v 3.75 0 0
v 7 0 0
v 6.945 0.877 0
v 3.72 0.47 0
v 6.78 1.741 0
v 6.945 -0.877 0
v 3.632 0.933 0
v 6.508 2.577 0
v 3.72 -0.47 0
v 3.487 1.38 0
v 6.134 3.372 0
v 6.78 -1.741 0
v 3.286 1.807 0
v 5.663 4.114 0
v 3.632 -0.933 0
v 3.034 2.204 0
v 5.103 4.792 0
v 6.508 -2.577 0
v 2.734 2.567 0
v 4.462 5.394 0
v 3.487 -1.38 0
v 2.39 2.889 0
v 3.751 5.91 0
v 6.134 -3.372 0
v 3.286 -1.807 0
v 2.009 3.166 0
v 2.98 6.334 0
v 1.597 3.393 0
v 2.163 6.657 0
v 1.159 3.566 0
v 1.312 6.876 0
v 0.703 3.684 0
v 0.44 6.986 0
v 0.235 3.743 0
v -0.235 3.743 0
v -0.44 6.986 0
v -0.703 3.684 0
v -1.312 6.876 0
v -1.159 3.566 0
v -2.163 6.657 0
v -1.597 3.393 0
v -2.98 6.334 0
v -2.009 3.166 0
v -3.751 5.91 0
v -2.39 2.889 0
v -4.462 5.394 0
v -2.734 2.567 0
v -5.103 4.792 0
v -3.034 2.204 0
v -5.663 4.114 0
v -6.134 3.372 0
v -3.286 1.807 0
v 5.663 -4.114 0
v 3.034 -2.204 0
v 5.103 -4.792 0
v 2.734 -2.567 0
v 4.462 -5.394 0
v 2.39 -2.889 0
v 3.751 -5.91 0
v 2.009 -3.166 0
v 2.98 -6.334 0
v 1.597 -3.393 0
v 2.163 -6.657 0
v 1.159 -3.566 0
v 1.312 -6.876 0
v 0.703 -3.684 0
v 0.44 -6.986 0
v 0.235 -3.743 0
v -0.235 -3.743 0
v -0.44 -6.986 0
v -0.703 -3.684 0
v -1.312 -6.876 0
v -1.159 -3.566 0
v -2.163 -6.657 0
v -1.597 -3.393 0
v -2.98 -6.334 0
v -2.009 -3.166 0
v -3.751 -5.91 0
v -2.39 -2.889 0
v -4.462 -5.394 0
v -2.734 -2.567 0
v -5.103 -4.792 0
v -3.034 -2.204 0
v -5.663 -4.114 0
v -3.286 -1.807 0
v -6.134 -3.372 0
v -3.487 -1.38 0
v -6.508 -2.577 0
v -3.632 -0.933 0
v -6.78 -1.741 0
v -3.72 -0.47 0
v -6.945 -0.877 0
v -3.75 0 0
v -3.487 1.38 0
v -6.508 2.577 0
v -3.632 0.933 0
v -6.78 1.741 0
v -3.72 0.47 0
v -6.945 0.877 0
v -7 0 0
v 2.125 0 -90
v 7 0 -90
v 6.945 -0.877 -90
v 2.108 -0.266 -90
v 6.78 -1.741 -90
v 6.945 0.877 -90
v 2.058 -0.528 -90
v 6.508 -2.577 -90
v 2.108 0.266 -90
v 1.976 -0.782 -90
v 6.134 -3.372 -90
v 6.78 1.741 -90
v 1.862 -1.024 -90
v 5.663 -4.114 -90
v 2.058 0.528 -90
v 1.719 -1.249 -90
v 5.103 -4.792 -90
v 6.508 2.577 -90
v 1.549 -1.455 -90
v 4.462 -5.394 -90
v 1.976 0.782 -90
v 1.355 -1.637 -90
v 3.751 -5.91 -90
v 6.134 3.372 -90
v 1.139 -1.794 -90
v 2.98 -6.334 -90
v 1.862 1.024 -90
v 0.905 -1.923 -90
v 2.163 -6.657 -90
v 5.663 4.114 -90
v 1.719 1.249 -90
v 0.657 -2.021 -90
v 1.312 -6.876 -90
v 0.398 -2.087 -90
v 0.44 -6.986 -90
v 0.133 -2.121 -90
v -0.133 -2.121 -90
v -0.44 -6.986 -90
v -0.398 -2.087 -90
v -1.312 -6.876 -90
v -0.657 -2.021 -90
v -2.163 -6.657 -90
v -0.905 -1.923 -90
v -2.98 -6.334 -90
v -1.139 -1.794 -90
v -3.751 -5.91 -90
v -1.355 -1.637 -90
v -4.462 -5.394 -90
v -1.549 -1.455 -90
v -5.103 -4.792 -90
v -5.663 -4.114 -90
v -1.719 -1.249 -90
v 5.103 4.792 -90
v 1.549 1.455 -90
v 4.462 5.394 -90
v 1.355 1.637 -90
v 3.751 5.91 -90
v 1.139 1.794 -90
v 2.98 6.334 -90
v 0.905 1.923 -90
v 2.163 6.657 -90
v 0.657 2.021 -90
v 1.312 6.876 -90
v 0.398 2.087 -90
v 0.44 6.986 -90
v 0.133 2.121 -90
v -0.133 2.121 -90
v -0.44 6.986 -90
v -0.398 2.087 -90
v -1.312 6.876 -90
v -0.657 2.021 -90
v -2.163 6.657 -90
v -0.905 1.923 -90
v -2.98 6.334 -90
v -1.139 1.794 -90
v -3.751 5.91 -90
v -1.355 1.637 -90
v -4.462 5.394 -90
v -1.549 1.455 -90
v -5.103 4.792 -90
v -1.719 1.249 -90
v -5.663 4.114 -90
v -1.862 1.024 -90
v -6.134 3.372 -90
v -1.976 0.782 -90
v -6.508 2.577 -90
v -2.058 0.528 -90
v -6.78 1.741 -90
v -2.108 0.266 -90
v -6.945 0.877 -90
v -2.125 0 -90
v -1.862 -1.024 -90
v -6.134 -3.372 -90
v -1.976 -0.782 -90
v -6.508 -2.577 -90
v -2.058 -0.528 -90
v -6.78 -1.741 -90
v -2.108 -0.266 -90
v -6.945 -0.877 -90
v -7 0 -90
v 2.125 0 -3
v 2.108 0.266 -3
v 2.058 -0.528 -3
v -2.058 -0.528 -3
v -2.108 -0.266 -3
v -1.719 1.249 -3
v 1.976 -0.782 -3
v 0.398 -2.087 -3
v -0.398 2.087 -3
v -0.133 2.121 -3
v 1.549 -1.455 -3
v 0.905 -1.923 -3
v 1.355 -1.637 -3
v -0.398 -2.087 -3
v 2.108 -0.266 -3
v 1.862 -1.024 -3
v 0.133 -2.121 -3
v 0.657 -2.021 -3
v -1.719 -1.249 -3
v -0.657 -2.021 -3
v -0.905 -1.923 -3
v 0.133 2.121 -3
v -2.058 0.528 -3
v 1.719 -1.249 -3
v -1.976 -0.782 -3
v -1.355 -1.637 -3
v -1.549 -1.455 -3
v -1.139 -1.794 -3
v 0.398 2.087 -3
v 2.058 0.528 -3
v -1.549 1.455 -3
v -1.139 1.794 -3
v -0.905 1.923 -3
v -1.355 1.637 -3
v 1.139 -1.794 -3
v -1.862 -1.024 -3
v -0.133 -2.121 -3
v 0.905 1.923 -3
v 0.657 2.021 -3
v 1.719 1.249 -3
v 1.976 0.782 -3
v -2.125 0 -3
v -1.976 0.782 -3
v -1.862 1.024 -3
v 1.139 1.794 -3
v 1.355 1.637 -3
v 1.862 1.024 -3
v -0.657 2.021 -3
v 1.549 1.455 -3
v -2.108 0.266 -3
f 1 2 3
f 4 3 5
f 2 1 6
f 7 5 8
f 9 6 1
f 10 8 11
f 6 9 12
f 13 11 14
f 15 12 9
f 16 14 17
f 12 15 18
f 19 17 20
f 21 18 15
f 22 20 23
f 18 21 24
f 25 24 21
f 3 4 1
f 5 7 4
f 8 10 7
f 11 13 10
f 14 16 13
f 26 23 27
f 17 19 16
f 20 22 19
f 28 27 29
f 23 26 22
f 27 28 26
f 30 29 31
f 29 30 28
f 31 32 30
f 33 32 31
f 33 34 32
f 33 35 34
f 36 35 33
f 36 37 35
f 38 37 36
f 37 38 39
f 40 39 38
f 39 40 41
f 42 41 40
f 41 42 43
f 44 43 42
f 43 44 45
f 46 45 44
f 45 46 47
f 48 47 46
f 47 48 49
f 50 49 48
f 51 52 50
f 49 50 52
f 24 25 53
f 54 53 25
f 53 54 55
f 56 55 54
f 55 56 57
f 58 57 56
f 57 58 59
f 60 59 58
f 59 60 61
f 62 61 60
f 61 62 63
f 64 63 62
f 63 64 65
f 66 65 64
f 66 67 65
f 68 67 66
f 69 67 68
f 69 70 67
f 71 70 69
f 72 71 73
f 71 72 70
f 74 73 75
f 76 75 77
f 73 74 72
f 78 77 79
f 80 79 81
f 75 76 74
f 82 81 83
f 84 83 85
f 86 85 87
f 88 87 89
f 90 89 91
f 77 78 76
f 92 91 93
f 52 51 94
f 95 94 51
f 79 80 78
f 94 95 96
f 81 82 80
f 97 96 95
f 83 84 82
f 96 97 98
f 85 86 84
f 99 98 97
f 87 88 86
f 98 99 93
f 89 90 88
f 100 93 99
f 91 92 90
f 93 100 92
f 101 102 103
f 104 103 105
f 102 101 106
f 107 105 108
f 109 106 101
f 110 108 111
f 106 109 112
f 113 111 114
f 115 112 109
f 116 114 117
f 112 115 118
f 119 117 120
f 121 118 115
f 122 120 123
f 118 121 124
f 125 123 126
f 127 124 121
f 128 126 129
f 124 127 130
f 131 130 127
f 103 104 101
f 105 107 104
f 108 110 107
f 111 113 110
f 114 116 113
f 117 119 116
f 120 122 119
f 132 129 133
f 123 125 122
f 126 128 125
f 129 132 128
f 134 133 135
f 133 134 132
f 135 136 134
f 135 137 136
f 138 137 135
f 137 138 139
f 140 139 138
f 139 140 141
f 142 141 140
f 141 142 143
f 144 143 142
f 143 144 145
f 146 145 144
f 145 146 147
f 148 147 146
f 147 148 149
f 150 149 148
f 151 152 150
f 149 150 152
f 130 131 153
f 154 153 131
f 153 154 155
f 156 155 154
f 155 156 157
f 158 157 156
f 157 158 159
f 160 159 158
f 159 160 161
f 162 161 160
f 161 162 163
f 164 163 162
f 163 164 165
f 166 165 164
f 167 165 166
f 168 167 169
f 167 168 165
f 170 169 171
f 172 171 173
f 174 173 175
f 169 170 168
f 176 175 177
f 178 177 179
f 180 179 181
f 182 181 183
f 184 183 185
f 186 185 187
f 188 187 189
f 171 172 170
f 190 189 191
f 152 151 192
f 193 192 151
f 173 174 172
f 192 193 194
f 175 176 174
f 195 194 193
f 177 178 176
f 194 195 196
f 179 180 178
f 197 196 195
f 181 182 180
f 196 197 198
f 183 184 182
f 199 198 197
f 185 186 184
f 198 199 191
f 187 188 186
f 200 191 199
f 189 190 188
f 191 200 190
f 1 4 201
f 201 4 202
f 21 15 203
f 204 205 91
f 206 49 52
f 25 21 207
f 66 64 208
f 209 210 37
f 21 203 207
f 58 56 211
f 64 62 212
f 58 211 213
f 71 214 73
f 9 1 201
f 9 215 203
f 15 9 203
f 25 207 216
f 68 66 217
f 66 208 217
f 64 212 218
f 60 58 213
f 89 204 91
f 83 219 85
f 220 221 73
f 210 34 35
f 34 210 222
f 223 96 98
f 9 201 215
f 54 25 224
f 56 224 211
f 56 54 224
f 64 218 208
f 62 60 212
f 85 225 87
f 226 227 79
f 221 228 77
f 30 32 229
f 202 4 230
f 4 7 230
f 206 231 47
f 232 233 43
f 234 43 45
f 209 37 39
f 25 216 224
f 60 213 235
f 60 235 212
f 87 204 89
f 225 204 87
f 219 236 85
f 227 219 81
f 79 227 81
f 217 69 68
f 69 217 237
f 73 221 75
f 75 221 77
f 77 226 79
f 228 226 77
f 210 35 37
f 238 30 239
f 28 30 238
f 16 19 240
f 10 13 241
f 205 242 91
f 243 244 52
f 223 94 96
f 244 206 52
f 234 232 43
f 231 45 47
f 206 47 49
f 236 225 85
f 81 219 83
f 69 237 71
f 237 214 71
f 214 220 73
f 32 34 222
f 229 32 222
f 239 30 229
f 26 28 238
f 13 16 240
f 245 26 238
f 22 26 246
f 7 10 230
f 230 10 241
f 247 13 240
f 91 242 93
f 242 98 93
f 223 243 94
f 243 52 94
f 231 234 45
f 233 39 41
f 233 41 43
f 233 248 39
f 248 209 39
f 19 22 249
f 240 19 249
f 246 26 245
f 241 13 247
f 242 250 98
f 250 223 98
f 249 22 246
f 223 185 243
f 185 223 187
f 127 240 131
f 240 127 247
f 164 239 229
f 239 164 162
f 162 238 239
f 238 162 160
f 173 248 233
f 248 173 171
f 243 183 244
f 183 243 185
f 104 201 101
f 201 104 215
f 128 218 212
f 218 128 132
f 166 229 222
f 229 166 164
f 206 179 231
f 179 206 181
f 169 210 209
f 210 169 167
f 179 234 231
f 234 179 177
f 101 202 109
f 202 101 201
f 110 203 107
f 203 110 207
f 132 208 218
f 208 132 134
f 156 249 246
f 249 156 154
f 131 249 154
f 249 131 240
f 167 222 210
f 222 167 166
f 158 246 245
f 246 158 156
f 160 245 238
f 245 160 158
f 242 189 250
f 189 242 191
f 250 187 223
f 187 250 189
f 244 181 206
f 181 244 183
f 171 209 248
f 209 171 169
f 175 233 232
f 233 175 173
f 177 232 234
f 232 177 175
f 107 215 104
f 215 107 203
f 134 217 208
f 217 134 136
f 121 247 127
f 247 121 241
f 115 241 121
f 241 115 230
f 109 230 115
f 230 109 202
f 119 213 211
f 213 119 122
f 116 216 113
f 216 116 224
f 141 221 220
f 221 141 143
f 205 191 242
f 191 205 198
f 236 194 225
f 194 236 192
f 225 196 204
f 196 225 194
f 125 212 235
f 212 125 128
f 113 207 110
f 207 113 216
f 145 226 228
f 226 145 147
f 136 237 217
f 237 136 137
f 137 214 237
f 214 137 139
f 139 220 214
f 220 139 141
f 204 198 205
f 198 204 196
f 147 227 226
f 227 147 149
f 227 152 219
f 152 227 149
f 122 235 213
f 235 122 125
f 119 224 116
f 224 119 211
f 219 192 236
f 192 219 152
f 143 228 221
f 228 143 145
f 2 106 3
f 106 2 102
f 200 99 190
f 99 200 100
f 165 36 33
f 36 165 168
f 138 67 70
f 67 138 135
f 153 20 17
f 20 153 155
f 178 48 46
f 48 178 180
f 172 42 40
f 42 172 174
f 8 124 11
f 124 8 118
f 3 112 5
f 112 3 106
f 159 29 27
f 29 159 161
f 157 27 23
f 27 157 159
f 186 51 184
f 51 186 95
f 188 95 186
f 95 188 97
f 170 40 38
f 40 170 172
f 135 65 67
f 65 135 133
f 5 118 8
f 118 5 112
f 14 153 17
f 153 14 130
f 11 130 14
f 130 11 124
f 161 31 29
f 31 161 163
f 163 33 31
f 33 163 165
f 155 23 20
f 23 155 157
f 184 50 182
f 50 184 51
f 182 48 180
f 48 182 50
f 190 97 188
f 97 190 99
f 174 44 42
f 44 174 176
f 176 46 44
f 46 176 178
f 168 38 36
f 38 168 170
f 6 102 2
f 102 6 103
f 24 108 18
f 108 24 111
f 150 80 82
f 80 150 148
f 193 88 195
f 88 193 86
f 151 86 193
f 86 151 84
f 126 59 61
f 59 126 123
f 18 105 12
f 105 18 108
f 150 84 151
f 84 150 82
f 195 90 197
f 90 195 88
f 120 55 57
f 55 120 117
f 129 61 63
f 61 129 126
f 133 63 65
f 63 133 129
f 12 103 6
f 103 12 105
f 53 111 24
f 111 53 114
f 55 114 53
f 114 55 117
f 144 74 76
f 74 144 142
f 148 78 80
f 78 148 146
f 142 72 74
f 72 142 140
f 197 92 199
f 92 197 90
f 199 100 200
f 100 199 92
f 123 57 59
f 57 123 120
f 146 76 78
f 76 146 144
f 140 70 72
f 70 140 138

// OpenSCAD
$fn = 50;


difference() {
	union() {
		translate(v = [0, 0, -90.0000000000]) {
			cylinder(h = 90, r = 7.0000000000);
		}
		cylinder(h = 0, r = 13.0000000000);
	}
	union() {
		translate(v = [0, 0, 0]) {
			rotate(a = [0, 0, 0]) {
				difference() {
					union() {
						#translate(v = [0, 0, -90.0000000000]) {
							cylinder(h = 90, r = 2.0000000000);
						}
						#translate(v = [0, 0, -3]) {
							cylinder(h = 3, r = 7.0000000000, r1 = 2.1250000000, r2 = 3.7500000000);
						}
						#translate(v = [0, 0, -90.0000000000]) {
							cylinder(h = 90, r = 2.1250000000);
						}
						#translate(v = [0, 0, -90.0000000000]) {
							cylinder(h = 90, r = 2.0000000000);
						}
					}
					union();
				}
			}
		}
	}
}
